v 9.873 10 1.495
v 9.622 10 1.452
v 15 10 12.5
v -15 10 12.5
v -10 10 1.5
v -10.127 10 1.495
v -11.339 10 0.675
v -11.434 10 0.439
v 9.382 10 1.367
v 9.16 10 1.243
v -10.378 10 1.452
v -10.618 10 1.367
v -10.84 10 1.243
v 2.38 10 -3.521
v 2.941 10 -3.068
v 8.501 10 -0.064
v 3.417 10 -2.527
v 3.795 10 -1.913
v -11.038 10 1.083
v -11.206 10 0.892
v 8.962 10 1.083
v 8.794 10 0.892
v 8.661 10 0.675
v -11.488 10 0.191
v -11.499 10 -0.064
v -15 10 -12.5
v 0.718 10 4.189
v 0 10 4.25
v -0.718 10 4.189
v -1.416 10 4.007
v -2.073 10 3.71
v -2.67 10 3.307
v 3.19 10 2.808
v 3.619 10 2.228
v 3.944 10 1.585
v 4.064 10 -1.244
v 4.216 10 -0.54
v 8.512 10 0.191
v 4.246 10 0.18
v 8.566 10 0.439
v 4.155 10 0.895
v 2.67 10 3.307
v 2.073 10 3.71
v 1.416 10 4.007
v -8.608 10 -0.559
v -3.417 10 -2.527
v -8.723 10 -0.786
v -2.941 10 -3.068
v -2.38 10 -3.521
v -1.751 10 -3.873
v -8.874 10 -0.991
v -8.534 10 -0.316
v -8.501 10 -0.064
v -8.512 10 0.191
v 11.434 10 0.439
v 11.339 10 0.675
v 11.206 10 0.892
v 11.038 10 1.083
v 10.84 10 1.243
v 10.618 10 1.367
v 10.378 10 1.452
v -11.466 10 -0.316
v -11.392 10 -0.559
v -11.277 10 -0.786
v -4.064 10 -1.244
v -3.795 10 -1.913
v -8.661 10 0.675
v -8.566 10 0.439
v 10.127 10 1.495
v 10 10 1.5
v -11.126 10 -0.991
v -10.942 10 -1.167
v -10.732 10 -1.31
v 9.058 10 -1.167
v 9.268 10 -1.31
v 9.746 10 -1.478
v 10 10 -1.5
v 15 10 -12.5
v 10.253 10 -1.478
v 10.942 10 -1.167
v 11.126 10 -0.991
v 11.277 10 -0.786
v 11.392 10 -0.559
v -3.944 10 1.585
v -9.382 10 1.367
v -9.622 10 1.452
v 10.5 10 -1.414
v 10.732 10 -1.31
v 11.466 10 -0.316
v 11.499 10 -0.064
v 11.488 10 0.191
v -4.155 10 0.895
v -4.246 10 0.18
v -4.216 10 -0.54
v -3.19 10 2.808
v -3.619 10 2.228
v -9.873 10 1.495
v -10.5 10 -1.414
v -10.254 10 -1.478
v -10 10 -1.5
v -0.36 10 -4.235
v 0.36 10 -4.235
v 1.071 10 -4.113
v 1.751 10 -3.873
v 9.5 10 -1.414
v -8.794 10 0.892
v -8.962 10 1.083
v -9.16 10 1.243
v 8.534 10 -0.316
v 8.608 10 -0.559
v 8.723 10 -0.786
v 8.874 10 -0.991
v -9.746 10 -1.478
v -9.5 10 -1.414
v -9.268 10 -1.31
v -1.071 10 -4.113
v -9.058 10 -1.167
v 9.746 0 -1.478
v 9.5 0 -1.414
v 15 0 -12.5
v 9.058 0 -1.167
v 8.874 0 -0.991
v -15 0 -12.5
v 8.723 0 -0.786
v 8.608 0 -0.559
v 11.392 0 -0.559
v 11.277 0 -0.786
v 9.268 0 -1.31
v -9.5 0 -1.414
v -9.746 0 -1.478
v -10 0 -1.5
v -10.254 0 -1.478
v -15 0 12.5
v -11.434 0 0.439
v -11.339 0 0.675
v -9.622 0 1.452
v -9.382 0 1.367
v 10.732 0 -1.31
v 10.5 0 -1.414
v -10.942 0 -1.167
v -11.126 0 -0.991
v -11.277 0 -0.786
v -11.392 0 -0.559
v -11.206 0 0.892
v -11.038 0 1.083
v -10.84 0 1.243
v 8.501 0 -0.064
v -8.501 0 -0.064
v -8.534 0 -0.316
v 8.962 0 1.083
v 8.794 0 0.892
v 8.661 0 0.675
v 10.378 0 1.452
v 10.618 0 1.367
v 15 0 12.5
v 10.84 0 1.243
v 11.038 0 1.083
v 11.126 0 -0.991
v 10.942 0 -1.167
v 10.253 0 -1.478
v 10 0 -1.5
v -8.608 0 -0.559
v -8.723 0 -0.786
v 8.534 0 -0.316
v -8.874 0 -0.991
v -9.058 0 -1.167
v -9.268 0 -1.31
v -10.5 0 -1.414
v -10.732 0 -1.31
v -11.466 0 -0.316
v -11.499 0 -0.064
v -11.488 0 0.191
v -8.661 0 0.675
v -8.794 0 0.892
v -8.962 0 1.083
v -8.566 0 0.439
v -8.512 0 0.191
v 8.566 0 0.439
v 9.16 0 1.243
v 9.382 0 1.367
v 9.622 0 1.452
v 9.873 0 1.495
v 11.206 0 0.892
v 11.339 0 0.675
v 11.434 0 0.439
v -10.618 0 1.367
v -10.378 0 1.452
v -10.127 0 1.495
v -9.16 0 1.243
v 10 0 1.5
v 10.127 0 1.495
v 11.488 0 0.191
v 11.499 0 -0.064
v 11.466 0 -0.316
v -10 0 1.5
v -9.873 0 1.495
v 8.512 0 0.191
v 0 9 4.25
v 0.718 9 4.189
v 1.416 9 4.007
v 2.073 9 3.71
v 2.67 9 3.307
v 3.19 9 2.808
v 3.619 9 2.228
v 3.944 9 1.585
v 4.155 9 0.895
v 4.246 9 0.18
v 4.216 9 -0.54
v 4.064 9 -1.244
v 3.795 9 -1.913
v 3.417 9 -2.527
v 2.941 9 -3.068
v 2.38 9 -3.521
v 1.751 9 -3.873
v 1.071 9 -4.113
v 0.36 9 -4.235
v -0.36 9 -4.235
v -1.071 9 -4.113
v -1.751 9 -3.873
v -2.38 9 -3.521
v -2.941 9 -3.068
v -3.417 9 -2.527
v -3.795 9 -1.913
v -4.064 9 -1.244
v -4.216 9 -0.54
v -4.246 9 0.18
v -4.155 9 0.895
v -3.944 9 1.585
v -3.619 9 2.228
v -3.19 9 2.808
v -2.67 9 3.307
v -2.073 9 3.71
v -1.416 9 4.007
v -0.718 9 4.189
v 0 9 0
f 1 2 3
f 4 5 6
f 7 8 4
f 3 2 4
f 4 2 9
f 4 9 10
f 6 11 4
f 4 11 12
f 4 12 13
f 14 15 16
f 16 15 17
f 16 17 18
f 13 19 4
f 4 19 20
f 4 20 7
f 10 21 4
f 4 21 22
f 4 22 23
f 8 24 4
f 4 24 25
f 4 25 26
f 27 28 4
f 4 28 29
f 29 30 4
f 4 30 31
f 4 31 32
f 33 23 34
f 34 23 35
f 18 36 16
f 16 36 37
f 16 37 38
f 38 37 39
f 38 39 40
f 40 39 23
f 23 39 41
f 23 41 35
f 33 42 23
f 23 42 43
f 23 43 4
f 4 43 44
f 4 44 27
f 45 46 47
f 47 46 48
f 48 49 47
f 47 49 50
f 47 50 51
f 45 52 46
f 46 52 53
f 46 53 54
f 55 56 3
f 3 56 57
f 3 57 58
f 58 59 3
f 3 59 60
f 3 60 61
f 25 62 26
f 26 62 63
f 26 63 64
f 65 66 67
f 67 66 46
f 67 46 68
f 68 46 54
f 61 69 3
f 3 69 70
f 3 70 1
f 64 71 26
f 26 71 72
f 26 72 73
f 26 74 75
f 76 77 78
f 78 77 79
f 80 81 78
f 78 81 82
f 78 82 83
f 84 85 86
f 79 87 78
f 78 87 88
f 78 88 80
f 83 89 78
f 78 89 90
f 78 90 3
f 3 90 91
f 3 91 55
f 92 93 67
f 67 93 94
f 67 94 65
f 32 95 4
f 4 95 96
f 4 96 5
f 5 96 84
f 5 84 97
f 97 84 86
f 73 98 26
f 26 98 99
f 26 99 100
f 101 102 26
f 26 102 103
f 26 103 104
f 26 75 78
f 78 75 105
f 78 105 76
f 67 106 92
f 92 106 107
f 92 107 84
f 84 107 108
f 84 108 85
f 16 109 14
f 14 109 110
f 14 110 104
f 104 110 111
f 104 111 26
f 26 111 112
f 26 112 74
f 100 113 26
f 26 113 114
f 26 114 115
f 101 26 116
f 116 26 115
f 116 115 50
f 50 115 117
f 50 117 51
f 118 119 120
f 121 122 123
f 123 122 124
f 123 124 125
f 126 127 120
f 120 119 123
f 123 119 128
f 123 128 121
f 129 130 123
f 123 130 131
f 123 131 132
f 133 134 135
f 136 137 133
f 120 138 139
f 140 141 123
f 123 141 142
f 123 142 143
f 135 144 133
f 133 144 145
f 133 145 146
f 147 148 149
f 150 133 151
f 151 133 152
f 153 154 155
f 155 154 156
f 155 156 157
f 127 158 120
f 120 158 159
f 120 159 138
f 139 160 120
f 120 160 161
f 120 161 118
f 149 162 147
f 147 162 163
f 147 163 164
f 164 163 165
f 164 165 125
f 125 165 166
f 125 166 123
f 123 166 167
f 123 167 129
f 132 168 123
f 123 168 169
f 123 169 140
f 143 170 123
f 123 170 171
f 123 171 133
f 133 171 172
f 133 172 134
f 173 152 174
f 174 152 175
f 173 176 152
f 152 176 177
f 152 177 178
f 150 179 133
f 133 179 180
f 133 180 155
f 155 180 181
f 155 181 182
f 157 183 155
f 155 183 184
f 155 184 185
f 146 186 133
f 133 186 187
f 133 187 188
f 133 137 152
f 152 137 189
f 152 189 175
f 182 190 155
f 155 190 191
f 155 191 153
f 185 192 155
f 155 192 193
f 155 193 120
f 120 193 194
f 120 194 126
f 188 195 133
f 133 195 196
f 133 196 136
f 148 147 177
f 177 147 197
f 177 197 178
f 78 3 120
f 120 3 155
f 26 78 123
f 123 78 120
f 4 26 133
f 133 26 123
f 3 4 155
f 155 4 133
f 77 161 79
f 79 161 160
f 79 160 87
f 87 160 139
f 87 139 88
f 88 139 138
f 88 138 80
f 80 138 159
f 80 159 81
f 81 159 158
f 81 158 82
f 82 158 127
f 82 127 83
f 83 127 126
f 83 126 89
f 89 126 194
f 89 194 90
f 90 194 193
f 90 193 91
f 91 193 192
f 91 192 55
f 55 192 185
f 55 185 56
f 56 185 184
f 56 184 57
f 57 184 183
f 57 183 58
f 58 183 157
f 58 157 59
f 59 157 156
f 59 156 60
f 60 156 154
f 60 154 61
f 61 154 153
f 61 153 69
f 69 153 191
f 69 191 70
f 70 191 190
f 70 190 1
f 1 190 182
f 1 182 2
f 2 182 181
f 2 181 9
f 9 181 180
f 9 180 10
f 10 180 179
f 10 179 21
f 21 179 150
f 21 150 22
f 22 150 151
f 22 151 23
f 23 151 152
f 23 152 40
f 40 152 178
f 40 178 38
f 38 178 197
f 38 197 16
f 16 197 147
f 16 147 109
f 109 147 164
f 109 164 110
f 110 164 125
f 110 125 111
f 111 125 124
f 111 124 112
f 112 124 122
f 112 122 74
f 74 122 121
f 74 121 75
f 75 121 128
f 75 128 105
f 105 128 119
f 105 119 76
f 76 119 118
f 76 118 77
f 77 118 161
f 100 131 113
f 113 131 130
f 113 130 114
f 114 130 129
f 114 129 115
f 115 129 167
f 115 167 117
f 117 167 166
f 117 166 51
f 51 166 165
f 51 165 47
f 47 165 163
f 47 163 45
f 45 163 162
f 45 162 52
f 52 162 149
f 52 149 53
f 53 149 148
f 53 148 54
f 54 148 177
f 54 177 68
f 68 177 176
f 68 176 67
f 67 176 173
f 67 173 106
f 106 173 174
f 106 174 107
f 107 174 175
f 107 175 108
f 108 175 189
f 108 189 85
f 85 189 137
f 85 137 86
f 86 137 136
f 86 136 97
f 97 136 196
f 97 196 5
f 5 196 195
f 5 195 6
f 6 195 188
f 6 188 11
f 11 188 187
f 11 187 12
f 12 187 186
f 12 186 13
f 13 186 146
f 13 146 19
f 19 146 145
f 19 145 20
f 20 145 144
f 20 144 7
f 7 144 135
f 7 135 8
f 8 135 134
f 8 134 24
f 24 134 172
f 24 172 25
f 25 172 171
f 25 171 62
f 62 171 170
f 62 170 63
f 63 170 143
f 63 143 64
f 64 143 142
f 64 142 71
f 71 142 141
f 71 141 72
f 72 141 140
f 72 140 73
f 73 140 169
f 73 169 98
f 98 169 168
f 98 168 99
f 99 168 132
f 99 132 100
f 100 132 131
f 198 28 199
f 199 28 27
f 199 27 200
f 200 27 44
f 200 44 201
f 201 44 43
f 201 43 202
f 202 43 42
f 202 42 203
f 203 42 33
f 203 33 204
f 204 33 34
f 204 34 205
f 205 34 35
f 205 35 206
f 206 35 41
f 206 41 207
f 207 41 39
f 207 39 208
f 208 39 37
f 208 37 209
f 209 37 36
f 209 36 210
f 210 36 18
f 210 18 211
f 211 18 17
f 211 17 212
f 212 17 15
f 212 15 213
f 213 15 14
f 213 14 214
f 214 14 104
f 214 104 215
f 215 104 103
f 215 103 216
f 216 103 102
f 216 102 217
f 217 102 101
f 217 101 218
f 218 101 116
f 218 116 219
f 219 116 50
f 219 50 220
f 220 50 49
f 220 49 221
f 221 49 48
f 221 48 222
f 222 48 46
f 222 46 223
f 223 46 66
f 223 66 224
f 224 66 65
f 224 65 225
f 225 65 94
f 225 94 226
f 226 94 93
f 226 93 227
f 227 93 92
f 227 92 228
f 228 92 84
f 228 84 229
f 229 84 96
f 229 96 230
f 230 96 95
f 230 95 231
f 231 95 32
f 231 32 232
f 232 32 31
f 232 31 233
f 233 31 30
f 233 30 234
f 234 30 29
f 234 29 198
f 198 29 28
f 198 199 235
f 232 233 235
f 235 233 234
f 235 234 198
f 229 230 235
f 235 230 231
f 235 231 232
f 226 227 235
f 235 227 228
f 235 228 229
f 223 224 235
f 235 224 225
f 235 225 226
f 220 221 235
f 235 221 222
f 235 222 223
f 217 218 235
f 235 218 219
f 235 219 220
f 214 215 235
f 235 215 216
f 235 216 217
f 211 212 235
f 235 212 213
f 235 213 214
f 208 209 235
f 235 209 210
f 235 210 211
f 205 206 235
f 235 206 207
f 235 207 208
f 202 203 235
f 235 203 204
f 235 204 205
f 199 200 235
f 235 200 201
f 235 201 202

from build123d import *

# Parameters (mm, degrees)
SKETCH1_W           = 30
SKETCH1_H           = 25
SKETCH1_R           = 1.5
BOSS_EXTRUDE1_DEPTH = 10
SKETCH3_R           = 4.25
CUT_EXTRUDE1_DEPTH  = 1


with BuildPart() as part:
    # Sketch1 → Boss-Extrude1 (new body)
    with BuildSketch(Plane(origin=(0, 0, 0), x_dir=(1, 0, 0), z_dir=(0, 1, 0))):
        Rectangle(SKETCH1_W, SKETCH1_H)
        with Locations((10, 0)):
            Circle(SKETCH1_R, mode=Mode.SUBTRACT)
        with Locations((-10, 0)):
            Circle(SKETCH1_R, mode=Mode.SUBTRACT)
    extrude(amount=BOSS_EXTRUDE1_DEPTH)

    # Sketch3 → Cut-Extrude1 (cut)
    with BuildSketch(Plane(origin=(0, 10, 0), x_dir=(1, 0, 0), z_dir=(0, 1, 0))):
        Circle(SKETCH3_R)
    extrude(amount=-CUT_EXTRUDE1_DEPTH, mode=Mode.SUBTRACT)


solid = part.part
